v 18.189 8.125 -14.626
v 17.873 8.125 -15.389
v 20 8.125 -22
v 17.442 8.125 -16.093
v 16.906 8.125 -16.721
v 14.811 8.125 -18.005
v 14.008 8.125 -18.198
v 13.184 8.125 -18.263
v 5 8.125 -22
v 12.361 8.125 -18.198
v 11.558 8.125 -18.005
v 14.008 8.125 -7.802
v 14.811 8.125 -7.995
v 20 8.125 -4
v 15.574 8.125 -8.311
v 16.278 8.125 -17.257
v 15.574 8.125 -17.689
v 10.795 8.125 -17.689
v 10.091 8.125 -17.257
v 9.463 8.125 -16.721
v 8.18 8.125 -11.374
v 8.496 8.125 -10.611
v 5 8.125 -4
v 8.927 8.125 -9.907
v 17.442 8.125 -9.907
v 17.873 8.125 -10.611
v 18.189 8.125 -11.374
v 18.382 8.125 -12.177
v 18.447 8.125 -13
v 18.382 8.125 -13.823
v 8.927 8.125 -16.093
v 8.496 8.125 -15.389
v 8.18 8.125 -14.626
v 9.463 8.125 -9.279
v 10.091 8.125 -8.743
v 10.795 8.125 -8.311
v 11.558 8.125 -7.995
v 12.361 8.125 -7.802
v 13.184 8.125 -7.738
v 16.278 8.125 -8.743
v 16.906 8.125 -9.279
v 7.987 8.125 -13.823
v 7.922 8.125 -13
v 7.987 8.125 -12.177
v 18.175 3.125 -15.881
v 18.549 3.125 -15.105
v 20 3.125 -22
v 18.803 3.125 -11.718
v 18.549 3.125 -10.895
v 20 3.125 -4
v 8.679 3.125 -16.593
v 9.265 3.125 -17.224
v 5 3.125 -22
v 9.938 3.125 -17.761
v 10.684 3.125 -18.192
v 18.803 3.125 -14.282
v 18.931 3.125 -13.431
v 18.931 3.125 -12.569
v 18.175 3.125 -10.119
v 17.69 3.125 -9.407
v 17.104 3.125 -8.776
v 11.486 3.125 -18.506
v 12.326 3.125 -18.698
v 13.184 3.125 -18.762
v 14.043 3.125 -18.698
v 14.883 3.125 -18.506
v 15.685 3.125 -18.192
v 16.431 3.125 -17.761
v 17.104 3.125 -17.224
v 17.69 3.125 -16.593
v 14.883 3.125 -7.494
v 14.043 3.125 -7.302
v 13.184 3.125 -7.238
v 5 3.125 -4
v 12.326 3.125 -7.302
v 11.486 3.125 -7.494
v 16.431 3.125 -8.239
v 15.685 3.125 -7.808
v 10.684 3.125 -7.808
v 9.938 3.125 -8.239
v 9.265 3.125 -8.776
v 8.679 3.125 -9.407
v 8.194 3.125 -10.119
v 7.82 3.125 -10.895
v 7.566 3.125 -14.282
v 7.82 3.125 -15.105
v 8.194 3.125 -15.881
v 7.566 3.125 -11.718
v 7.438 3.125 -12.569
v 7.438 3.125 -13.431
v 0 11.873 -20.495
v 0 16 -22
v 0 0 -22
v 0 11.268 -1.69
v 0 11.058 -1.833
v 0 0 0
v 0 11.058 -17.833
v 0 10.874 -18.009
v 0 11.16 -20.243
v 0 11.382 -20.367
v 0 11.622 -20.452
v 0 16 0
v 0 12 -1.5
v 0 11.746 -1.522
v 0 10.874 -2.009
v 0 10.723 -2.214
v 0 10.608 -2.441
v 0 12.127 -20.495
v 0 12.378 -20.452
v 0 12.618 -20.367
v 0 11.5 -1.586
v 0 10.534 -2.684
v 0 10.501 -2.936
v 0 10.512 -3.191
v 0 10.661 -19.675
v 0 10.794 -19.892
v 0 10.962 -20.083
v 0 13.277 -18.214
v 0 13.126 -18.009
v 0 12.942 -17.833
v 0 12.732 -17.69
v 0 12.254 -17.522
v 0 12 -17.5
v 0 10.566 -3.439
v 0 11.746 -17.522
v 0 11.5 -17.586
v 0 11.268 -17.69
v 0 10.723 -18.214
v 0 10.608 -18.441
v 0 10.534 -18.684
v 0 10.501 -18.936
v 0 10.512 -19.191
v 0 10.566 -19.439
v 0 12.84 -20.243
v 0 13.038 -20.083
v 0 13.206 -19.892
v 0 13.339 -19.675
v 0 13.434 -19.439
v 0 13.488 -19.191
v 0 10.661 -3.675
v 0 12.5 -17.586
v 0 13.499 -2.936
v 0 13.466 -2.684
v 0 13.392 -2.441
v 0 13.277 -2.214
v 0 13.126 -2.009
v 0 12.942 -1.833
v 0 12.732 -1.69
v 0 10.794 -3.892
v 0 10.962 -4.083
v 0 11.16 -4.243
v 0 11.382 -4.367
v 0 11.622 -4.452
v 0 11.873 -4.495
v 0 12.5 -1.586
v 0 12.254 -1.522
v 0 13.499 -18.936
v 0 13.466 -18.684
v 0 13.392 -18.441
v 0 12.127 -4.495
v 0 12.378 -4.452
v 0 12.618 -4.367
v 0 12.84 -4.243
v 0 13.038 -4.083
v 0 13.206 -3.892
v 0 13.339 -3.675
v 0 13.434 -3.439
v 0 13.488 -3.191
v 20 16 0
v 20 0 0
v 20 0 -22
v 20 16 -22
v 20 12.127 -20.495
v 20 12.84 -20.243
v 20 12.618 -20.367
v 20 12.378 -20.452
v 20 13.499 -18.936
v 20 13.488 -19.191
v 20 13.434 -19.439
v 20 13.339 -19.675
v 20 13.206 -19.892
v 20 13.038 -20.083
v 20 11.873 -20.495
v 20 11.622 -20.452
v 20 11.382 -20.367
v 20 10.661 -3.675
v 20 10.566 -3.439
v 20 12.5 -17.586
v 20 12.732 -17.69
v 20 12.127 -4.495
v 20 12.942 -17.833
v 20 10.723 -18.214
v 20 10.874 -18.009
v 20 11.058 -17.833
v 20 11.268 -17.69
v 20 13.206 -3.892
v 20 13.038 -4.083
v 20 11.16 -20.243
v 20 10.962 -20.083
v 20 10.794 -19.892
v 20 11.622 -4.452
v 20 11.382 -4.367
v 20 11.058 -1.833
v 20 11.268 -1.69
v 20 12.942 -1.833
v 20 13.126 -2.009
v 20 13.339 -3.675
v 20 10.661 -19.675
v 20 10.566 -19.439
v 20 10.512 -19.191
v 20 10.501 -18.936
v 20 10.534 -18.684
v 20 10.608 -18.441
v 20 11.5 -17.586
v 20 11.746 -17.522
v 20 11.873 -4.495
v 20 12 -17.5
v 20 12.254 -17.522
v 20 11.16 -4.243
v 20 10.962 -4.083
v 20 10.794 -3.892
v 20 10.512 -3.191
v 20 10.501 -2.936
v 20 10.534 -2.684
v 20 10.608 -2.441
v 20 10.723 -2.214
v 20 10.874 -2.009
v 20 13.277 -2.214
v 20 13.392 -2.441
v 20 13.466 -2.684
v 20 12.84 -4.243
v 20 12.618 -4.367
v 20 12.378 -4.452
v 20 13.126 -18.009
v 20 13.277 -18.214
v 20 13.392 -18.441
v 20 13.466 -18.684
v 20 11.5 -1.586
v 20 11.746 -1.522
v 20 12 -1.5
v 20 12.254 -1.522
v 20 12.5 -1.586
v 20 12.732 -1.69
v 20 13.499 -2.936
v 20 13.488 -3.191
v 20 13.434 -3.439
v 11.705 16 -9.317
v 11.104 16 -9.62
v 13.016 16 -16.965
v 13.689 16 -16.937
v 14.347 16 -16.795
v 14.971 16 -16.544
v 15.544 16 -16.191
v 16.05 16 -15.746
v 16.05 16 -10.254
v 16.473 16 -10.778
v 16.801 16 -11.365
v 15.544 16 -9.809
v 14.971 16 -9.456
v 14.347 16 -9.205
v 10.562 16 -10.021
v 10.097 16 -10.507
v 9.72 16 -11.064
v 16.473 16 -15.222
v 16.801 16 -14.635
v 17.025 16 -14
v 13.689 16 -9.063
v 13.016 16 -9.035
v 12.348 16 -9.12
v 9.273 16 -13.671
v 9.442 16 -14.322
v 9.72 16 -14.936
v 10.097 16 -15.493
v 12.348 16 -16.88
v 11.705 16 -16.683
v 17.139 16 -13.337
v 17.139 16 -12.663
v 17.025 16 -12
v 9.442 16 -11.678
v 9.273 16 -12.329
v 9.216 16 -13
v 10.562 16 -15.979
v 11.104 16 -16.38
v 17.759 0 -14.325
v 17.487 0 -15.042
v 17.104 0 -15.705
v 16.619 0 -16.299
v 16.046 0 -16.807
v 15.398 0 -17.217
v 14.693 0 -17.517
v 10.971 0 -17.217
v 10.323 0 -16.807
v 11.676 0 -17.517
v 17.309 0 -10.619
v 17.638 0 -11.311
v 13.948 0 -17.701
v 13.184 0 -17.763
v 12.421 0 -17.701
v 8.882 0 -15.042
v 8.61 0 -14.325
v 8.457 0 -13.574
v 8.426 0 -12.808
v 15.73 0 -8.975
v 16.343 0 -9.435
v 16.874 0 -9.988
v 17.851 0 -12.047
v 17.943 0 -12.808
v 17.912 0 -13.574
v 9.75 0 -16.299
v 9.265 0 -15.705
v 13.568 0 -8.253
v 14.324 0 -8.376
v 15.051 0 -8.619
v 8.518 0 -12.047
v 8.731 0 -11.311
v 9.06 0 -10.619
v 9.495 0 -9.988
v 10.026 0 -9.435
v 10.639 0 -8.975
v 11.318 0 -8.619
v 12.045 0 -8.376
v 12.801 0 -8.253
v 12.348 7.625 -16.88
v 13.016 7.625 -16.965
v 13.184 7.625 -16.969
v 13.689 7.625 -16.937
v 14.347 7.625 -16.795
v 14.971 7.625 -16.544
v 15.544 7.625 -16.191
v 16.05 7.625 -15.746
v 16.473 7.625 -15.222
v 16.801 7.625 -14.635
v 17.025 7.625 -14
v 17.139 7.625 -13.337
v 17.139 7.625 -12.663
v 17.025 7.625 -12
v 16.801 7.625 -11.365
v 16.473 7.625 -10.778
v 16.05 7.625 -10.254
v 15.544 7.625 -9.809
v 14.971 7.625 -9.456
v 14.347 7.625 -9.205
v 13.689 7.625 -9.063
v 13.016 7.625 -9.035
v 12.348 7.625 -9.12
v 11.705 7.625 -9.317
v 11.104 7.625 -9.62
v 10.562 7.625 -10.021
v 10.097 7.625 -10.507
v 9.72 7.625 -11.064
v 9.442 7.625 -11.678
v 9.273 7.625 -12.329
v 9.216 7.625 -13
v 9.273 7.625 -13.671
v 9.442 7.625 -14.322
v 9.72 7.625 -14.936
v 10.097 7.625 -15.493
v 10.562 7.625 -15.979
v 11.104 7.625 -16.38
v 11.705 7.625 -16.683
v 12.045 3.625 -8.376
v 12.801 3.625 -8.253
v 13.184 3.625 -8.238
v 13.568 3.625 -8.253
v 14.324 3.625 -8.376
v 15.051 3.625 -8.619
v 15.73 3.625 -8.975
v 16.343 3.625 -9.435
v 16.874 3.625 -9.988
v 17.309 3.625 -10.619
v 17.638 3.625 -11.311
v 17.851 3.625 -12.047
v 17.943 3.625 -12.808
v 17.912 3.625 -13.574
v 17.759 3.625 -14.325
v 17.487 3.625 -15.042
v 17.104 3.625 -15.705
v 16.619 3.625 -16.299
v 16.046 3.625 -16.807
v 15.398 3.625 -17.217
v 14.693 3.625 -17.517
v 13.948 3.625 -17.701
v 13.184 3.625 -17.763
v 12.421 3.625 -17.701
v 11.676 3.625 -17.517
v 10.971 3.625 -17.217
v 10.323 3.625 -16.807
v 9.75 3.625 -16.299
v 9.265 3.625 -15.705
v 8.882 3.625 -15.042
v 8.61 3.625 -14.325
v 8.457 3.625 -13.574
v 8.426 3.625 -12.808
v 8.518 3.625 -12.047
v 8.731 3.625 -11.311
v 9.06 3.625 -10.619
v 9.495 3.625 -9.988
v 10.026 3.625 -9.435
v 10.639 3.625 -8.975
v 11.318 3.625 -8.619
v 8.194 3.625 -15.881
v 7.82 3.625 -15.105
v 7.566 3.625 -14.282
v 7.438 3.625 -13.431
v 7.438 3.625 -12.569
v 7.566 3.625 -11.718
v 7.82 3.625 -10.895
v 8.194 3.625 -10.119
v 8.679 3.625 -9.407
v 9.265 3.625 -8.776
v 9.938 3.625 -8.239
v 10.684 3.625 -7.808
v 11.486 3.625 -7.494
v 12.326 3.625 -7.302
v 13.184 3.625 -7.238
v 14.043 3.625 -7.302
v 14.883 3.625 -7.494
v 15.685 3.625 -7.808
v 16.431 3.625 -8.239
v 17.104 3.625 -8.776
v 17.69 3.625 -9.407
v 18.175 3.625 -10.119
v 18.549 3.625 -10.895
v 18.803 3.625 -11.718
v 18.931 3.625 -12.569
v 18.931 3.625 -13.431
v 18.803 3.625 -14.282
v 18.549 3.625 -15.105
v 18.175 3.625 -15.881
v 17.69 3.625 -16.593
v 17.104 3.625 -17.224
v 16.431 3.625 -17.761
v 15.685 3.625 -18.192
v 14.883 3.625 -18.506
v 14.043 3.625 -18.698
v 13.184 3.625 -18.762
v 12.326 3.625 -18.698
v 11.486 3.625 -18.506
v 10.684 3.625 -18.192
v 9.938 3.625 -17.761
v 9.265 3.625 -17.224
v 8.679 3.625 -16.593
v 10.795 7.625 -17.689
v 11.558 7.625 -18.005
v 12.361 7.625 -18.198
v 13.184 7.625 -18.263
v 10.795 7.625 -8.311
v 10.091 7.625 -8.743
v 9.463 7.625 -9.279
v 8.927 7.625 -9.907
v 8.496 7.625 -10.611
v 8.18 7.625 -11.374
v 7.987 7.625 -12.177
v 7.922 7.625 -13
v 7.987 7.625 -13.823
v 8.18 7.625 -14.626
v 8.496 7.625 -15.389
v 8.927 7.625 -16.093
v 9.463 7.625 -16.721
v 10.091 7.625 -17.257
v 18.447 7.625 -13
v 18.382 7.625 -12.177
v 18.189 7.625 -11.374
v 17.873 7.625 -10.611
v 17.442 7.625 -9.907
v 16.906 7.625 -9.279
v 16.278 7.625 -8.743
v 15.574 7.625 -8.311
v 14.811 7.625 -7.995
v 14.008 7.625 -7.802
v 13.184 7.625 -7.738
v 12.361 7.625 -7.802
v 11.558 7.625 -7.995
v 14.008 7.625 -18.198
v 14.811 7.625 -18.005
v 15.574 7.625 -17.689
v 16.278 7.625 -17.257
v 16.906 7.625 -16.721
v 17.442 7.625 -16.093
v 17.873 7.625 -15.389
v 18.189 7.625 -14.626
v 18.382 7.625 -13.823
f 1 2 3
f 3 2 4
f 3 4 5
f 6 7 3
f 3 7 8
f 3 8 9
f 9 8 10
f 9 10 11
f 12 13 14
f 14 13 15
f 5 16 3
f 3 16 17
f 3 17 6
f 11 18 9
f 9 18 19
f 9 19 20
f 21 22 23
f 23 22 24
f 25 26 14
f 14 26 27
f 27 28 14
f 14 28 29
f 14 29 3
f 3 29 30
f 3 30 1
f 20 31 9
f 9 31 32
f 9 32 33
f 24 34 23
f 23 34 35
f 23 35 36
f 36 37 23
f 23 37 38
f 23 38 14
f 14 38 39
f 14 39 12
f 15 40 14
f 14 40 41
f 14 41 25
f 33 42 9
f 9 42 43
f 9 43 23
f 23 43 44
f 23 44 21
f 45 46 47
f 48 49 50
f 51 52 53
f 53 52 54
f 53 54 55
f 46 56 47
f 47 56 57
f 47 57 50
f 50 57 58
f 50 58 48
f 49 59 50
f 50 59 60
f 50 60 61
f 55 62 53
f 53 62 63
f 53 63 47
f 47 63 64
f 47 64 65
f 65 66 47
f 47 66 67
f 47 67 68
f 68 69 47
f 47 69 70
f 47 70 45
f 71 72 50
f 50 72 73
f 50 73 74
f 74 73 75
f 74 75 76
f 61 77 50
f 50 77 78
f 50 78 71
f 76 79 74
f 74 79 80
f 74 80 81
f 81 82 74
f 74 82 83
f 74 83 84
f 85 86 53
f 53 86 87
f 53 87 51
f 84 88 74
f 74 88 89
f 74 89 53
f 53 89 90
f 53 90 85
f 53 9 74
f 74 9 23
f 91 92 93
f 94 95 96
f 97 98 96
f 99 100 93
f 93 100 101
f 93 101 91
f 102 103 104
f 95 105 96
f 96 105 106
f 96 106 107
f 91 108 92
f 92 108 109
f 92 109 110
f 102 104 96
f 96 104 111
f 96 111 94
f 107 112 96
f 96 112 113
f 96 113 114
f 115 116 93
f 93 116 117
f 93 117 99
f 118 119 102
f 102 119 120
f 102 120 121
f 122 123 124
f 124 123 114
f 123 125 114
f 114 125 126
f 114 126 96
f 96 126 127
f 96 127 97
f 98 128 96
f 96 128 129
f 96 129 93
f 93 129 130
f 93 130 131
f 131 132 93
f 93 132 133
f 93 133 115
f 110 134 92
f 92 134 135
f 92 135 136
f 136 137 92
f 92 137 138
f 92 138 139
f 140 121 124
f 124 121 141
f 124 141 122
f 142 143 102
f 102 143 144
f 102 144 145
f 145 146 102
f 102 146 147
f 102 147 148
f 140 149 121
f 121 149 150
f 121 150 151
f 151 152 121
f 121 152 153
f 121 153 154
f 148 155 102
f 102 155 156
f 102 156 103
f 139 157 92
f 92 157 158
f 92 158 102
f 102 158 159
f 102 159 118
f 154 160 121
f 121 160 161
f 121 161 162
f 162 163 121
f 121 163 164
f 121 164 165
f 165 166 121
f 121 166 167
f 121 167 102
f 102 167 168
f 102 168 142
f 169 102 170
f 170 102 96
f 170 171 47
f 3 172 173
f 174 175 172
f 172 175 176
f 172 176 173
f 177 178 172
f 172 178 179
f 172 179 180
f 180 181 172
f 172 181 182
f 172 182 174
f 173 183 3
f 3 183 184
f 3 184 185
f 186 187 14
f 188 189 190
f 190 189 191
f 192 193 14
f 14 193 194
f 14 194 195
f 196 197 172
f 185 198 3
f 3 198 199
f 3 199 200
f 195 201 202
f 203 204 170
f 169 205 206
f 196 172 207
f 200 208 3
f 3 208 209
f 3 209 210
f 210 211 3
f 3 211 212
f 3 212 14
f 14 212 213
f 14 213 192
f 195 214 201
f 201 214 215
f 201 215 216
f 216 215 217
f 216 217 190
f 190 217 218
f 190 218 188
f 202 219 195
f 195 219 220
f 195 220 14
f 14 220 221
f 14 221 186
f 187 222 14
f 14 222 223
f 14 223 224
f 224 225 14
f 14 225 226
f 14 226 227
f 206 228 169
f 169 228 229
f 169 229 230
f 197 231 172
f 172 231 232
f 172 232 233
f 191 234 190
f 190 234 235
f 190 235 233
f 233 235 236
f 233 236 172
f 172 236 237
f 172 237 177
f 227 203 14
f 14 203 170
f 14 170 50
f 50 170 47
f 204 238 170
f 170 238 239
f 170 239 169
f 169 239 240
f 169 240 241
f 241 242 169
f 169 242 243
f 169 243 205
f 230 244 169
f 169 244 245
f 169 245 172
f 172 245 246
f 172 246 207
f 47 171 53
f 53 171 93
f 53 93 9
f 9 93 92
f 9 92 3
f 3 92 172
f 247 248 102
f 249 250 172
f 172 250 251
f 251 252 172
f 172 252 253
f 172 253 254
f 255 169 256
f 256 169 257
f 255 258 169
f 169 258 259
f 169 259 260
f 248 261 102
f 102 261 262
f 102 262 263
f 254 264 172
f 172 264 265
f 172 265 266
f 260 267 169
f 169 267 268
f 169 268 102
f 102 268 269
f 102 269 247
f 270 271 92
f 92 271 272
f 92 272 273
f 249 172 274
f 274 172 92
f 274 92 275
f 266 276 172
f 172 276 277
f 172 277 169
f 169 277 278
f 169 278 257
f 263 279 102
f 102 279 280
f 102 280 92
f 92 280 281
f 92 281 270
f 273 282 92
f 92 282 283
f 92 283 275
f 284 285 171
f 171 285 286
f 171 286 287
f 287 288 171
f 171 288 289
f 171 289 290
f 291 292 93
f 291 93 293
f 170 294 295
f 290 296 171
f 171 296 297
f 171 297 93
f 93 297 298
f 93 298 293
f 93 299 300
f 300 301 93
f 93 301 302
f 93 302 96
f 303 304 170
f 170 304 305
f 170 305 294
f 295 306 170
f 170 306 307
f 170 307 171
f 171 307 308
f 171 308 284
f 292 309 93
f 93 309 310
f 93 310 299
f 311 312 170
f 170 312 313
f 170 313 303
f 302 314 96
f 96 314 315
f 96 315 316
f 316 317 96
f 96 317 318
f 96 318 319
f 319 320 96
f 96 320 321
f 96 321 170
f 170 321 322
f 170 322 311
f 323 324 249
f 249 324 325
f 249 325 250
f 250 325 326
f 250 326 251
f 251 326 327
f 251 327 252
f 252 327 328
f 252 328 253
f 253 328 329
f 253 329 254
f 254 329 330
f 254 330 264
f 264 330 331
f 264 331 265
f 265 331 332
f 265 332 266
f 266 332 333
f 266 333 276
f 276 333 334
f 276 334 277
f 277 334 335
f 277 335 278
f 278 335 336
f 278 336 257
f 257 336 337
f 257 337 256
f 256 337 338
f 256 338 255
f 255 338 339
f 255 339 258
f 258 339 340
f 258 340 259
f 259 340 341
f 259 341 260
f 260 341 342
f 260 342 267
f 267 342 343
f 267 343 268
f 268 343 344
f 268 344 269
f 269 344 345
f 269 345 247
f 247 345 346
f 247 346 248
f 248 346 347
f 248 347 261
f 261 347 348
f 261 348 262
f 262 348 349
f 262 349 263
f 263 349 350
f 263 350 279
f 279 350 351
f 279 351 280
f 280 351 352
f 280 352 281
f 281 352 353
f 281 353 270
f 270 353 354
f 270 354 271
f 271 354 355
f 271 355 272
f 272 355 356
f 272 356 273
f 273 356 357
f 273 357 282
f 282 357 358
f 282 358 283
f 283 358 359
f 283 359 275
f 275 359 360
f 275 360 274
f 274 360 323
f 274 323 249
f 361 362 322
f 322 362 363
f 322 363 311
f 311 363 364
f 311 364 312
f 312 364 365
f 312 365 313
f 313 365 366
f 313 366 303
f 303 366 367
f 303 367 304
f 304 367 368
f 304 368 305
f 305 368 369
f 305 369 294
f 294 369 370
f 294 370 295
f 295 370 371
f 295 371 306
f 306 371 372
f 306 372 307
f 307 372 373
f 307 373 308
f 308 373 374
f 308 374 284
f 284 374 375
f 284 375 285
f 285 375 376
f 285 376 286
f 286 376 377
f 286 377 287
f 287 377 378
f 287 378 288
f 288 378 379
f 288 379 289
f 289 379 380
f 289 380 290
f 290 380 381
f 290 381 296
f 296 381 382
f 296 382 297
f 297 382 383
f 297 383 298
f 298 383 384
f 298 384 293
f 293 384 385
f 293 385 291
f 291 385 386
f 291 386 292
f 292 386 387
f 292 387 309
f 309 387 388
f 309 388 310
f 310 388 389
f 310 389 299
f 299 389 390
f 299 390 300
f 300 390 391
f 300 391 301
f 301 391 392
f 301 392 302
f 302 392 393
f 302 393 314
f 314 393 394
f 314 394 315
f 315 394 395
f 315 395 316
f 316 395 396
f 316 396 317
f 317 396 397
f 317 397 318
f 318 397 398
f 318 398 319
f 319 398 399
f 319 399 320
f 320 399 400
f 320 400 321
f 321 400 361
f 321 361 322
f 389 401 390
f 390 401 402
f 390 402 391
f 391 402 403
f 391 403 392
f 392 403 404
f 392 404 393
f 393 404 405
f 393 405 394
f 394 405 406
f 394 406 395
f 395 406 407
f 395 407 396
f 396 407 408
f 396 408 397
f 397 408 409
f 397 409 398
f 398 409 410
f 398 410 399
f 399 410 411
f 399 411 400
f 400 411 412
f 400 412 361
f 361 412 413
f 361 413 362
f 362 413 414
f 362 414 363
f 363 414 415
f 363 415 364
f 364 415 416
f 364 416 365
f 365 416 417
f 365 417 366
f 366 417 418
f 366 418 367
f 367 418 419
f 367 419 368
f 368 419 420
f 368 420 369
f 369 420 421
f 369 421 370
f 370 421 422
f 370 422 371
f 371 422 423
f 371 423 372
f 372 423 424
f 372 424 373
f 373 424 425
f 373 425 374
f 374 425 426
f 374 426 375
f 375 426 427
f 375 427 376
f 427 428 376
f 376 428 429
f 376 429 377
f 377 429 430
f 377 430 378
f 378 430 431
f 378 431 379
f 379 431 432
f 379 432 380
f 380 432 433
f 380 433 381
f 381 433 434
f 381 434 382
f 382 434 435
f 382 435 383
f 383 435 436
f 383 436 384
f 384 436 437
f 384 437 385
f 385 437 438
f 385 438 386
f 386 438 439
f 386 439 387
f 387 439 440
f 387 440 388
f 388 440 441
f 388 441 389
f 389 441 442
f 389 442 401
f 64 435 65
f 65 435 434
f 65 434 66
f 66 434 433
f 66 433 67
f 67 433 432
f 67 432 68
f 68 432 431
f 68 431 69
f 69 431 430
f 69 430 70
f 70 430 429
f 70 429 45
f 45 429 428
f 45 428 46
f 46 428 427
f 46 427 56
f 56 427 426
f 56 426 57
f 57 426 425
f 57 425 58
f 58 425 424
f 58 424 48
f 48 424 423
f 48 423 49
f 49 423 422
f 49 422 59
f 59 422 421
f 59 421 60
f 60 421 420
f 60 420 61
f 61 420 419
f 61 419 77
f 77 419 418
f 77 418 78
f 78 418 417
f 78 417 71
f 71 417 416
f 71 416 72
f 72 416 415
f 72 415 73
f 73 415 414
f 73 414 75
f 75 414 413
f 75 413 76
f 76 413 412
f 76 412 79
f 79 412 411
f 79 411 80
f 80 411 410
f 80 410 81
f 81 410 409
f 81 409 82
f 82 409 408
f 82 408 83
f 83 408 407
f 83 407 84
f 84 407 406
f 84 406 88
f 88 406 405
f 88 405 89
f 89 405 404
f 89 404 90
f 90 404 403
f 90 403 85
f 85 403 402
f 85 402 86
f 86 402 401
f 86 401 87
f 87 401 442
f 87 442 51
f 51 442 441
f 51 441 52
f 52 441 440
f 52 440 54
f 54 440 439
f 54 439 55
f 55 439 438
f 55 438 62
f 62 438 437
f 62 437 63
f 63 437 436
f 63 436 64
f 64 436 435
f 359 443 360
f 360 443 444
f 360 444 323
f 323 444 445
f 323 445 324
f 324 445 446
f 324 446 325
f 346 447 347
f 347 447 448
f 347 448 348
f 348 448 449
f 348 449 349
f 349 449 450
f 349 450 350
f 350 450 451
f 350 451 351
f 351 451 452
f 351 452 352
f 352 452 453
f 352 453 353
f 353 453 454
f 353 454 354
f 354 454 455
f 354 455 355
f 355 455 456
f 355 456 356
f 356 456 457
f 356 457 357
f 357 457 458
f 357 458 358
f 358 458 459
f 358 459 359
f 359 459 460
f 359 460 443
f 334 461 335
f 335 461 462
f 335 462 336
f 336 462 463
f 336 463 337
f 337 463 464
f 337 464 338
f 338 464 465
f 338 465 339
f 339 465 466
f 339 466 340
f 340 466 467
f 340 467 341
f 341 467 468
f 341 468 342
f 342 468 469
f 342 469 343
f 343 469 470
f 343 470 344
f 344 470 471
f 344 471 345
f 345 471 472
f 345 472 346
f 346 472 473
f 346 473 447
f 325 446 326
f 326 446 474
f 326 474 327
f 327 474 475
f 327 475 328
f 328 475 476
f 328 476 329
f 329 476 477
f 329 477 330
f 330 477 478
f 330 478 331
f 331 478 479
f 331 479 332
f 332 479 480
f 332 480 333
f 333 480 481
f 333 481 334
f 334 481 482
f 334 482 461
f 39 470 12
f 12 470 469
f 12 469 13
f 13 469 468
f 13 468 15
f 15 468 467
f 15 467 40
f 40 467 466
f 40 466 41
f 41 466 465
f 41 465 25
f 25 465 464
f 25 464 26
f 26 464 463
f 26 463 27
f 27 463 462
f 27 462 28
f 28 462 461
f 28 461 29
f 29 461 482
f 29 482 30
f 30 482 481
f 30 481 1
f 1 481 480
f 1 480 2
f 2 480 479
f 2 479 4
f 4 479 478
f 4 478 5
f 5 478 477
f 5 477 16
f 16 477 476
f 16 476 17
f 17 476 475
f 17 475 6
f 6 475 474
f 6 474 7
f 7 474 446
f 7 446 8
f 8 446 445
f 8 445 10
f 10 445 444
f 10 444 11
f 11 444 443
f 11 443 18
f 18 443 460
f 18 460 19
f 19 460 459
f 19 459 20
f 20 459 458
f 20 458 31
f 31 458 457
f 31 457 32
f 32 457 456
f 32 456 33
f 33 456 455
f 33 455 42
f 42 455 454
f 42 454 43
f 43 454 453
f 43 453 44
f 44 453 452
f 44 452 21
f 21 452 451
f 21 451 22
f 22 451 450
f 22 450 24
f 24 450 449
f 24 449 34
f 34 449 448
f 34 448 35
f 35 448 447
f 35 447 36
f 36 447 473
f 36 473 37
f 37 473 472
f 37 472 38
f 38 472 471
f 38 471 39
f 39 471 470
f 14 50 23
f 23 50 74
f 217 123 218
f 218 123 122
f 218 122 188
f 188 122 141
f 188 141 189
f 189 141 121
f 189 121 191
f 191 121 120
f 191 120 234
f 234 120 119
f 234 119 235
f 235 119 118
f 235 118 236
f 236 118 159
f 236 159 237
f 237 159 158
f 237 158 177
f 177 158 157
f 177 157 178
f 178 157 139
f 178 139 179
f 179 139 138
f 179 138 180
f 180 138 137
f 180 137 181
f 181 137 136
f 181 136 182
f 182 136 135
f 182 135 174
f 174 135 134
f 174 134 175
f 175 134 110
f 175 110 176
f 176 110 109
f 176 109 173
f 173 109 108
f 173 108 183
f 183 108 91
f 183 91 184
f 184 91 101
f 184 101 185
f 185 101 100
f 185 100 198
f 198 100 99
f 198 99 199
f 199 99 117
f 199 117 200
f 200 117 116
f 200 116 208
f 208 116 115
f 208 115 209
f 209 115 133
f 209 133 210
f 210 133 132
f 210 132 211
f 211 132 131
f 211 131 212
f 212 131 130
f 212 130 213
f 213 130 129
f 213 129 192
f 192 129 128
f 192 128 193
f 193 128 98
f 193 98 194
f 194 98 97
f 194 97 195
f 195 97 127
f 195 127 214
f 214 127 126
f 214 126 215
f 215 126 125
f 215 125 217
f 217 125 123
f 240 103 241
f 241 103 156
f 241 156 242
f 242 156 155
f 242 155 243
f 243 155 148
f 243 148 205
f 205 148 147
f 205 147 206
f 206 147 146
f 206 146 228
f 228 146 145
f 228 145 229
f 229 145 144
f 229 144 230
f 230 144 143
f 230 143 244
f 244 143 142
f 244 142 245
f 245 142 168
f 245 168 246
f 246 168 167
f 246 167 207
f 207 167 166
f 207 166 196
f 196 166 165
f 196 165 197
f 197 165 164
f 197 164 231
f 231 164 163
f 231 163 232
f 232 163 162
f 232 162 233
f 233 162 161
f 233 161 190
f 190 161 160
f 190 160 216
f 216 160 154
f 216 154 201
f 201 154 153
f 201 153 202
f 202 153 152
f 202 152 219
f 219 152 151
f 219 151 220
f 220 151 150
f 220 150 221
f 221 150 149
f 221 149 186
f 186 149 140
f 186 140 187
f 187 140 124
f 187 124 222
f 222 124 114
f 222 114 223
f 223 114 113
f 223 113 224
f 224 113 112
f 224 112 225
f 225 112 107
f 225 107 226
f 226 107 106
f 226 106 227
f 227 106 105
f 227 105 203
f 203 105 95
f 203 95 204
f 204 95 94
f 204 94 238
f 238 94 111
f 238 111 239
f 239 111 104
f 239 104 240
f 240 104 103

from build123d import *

# Parameters (mm, degrees)
SKETCH1_W               = 20
SKETCH1_H               = 22
BOSS_EXTRUDE1_DEPTH     = 16
SKETCH2_W               = 15
SKETCH2_H               = 5
CUT_EXTRUDE1_DEPTH      = 23
SKETCH3_R               = 3.96875
CUT_EXTRUDE2_DEPTH      = 13.875
CUT_EXTRUDE2_DEPTH_BACK = 4.125
CUT_EXTRUDE3_REACH      = 18
SKETCH4_R               = 4.7625
SKETCH5_R               = 5.762499999
SKETCH5_R_2             = 4.762499999
BOSS_EXTRUDE2_DEPTH     = 0.5
SKETCH6_R               = 5.2625
SKETCH6_R_2             = 3.96875
BOSS_EXTRUDE3_DEPTH     = 0.5
BOSS_EXTRUDE4_REACH     = 14.875
SKETCH7_W               = 15
SKETCH7_H               = 4
SKETCH9_R               = 1.5
CUT_EXTRUDE4_DEPTH      = 21


with BuildPart() as part:
    # Sketch1 → Boss-Extrude1 (new body)
    with BuildSketch(Plane(origin=(0, 0, 0), x_dir=(1, 0, 0), z_dir=(0, 1, 0))):
        with Locations((10, 11)):
            Rectangle(SKETCH1_W, SKETCH1_H)
    extrude(amount=BOSS_EXTRUDE1_DEPTH)

    # Sketch2 → Cut-Extrude1 (cut, through all)
    with BuildSketch(Plane(origin=(0, 0, -22), x_dir=(-1, 0, 0), z_dir=(0, 0, -1))):
        with Locations((-12.5, 5.625)):
            Rectangle(SKETCH2_W, SKETCH2_H)
    extrude(amount=-CUT_EXTRUDE1_DEPTH, mode=Mode.SUBTRACT)

    # Sketch3 → Cut-Extrude2 (cut, two sides)
    with BuildSketch(Plane(origin=(0, 3.125, 0), x_dir=(1, 0, 0), z_dir=(0, 1, 0))) as cut_extrude2_sk:
        with Locations((13.184494174, 13)):
            Circle(SKETCH3_R)
    extrude(amount=CUT_EXTRUDE2_DEPTH, mode=Mode.SUBTRACT)
    extrude(cut_extrude2_sk.sketch, amount=-CUT_EXTRUDE2_DEPTH_BACK, mode=Mode.SUBTRACT)

    # Sketch4 → Cut-Extrude3 (cut, up to next)
    with BuildSketch(Plane.XZ, mode=Mode.PRIVATE) as cut_extrude3_sk1:
        with Locations((13.184494174, -13)):
            Circle(SKETCH4_R)
    cut_extrude3_tool1 = extrude(cut_extrude3_sk1.sketch, amount=-CUT_EXTRUDE3_REACH, mode=Mode.PRIVATE) & part.part
    add(cut_extrude3_tool1.solids().sort_by_distance((13.184494, 0, -13))[0], mode=Mode.SUBTRACT)

    # Sketch5 → Boss-Extrude2 (add)
    with BuildSketch(Plane(origin=(0, 3.125, 0), x_dir=(1, 0, 0), z_dir=(0, 1, 0))):
        with Locations((13.184494174, 13)):
            Circle(SKETCH5_R)
        with Locations((13.184494174, 13)):
            Circle(SKETCH5_R_2, mode=Mode.SUBTRACT)
    extrude(amount=BOSS_EXTRUDE2_DEPTH)

    # Sketch6 → Boss-Extrude3 (add)
    with BuildSketch(Plane.XZ.offset(-8.125)):
        with Locations((13.184494174, -13)):
            Circle(SKETCH6_R)
        with Locations((13.184494174, -13)):
            Circle(SKETCH6_R_2, mode=Mode.SUBTRACT)
    extrude(amount=BOSS_EXTRUDE3_DEPTH)

    # Sketch7 → Boss-Extrude4 (add, up to next)
    with BuildSketch(Plane(origin=(0, 3.125, 0), x_dir=(1, 0, 0), z_dir=(0, 1, 0)), mode=Mode.PRIVATE) as boss_extrude4_sk1:
        with Locations((12.5, 2)):
            Rectangle(SKETCH7_W, SKETCH7_H)
    boss_extrude4_tool1 = extrude(boss_extrude4_sk1.sketch, amount=BOSS_EXTRUDE4_REACH, mode=Mode.PRIVATE) - part.part
    add(boss_extrude4_tool1.solids().sort_by_distance((12.5, 3.125, -2))[0])

    # Sketch9 → Cut-Extrude4 (cut, through all)
    with BuildSketch(Plane.ZY):
        with Locations((-3, 12)):
            Circle(SKETCH9_R)
        with Locations((-19, 12)):
            Circle(SKETCH9_R)
    extrude(amount=-CUT_EXTRUDE4_DEPTH, mode=Mode.SUBTRACT)


solid = part.part
